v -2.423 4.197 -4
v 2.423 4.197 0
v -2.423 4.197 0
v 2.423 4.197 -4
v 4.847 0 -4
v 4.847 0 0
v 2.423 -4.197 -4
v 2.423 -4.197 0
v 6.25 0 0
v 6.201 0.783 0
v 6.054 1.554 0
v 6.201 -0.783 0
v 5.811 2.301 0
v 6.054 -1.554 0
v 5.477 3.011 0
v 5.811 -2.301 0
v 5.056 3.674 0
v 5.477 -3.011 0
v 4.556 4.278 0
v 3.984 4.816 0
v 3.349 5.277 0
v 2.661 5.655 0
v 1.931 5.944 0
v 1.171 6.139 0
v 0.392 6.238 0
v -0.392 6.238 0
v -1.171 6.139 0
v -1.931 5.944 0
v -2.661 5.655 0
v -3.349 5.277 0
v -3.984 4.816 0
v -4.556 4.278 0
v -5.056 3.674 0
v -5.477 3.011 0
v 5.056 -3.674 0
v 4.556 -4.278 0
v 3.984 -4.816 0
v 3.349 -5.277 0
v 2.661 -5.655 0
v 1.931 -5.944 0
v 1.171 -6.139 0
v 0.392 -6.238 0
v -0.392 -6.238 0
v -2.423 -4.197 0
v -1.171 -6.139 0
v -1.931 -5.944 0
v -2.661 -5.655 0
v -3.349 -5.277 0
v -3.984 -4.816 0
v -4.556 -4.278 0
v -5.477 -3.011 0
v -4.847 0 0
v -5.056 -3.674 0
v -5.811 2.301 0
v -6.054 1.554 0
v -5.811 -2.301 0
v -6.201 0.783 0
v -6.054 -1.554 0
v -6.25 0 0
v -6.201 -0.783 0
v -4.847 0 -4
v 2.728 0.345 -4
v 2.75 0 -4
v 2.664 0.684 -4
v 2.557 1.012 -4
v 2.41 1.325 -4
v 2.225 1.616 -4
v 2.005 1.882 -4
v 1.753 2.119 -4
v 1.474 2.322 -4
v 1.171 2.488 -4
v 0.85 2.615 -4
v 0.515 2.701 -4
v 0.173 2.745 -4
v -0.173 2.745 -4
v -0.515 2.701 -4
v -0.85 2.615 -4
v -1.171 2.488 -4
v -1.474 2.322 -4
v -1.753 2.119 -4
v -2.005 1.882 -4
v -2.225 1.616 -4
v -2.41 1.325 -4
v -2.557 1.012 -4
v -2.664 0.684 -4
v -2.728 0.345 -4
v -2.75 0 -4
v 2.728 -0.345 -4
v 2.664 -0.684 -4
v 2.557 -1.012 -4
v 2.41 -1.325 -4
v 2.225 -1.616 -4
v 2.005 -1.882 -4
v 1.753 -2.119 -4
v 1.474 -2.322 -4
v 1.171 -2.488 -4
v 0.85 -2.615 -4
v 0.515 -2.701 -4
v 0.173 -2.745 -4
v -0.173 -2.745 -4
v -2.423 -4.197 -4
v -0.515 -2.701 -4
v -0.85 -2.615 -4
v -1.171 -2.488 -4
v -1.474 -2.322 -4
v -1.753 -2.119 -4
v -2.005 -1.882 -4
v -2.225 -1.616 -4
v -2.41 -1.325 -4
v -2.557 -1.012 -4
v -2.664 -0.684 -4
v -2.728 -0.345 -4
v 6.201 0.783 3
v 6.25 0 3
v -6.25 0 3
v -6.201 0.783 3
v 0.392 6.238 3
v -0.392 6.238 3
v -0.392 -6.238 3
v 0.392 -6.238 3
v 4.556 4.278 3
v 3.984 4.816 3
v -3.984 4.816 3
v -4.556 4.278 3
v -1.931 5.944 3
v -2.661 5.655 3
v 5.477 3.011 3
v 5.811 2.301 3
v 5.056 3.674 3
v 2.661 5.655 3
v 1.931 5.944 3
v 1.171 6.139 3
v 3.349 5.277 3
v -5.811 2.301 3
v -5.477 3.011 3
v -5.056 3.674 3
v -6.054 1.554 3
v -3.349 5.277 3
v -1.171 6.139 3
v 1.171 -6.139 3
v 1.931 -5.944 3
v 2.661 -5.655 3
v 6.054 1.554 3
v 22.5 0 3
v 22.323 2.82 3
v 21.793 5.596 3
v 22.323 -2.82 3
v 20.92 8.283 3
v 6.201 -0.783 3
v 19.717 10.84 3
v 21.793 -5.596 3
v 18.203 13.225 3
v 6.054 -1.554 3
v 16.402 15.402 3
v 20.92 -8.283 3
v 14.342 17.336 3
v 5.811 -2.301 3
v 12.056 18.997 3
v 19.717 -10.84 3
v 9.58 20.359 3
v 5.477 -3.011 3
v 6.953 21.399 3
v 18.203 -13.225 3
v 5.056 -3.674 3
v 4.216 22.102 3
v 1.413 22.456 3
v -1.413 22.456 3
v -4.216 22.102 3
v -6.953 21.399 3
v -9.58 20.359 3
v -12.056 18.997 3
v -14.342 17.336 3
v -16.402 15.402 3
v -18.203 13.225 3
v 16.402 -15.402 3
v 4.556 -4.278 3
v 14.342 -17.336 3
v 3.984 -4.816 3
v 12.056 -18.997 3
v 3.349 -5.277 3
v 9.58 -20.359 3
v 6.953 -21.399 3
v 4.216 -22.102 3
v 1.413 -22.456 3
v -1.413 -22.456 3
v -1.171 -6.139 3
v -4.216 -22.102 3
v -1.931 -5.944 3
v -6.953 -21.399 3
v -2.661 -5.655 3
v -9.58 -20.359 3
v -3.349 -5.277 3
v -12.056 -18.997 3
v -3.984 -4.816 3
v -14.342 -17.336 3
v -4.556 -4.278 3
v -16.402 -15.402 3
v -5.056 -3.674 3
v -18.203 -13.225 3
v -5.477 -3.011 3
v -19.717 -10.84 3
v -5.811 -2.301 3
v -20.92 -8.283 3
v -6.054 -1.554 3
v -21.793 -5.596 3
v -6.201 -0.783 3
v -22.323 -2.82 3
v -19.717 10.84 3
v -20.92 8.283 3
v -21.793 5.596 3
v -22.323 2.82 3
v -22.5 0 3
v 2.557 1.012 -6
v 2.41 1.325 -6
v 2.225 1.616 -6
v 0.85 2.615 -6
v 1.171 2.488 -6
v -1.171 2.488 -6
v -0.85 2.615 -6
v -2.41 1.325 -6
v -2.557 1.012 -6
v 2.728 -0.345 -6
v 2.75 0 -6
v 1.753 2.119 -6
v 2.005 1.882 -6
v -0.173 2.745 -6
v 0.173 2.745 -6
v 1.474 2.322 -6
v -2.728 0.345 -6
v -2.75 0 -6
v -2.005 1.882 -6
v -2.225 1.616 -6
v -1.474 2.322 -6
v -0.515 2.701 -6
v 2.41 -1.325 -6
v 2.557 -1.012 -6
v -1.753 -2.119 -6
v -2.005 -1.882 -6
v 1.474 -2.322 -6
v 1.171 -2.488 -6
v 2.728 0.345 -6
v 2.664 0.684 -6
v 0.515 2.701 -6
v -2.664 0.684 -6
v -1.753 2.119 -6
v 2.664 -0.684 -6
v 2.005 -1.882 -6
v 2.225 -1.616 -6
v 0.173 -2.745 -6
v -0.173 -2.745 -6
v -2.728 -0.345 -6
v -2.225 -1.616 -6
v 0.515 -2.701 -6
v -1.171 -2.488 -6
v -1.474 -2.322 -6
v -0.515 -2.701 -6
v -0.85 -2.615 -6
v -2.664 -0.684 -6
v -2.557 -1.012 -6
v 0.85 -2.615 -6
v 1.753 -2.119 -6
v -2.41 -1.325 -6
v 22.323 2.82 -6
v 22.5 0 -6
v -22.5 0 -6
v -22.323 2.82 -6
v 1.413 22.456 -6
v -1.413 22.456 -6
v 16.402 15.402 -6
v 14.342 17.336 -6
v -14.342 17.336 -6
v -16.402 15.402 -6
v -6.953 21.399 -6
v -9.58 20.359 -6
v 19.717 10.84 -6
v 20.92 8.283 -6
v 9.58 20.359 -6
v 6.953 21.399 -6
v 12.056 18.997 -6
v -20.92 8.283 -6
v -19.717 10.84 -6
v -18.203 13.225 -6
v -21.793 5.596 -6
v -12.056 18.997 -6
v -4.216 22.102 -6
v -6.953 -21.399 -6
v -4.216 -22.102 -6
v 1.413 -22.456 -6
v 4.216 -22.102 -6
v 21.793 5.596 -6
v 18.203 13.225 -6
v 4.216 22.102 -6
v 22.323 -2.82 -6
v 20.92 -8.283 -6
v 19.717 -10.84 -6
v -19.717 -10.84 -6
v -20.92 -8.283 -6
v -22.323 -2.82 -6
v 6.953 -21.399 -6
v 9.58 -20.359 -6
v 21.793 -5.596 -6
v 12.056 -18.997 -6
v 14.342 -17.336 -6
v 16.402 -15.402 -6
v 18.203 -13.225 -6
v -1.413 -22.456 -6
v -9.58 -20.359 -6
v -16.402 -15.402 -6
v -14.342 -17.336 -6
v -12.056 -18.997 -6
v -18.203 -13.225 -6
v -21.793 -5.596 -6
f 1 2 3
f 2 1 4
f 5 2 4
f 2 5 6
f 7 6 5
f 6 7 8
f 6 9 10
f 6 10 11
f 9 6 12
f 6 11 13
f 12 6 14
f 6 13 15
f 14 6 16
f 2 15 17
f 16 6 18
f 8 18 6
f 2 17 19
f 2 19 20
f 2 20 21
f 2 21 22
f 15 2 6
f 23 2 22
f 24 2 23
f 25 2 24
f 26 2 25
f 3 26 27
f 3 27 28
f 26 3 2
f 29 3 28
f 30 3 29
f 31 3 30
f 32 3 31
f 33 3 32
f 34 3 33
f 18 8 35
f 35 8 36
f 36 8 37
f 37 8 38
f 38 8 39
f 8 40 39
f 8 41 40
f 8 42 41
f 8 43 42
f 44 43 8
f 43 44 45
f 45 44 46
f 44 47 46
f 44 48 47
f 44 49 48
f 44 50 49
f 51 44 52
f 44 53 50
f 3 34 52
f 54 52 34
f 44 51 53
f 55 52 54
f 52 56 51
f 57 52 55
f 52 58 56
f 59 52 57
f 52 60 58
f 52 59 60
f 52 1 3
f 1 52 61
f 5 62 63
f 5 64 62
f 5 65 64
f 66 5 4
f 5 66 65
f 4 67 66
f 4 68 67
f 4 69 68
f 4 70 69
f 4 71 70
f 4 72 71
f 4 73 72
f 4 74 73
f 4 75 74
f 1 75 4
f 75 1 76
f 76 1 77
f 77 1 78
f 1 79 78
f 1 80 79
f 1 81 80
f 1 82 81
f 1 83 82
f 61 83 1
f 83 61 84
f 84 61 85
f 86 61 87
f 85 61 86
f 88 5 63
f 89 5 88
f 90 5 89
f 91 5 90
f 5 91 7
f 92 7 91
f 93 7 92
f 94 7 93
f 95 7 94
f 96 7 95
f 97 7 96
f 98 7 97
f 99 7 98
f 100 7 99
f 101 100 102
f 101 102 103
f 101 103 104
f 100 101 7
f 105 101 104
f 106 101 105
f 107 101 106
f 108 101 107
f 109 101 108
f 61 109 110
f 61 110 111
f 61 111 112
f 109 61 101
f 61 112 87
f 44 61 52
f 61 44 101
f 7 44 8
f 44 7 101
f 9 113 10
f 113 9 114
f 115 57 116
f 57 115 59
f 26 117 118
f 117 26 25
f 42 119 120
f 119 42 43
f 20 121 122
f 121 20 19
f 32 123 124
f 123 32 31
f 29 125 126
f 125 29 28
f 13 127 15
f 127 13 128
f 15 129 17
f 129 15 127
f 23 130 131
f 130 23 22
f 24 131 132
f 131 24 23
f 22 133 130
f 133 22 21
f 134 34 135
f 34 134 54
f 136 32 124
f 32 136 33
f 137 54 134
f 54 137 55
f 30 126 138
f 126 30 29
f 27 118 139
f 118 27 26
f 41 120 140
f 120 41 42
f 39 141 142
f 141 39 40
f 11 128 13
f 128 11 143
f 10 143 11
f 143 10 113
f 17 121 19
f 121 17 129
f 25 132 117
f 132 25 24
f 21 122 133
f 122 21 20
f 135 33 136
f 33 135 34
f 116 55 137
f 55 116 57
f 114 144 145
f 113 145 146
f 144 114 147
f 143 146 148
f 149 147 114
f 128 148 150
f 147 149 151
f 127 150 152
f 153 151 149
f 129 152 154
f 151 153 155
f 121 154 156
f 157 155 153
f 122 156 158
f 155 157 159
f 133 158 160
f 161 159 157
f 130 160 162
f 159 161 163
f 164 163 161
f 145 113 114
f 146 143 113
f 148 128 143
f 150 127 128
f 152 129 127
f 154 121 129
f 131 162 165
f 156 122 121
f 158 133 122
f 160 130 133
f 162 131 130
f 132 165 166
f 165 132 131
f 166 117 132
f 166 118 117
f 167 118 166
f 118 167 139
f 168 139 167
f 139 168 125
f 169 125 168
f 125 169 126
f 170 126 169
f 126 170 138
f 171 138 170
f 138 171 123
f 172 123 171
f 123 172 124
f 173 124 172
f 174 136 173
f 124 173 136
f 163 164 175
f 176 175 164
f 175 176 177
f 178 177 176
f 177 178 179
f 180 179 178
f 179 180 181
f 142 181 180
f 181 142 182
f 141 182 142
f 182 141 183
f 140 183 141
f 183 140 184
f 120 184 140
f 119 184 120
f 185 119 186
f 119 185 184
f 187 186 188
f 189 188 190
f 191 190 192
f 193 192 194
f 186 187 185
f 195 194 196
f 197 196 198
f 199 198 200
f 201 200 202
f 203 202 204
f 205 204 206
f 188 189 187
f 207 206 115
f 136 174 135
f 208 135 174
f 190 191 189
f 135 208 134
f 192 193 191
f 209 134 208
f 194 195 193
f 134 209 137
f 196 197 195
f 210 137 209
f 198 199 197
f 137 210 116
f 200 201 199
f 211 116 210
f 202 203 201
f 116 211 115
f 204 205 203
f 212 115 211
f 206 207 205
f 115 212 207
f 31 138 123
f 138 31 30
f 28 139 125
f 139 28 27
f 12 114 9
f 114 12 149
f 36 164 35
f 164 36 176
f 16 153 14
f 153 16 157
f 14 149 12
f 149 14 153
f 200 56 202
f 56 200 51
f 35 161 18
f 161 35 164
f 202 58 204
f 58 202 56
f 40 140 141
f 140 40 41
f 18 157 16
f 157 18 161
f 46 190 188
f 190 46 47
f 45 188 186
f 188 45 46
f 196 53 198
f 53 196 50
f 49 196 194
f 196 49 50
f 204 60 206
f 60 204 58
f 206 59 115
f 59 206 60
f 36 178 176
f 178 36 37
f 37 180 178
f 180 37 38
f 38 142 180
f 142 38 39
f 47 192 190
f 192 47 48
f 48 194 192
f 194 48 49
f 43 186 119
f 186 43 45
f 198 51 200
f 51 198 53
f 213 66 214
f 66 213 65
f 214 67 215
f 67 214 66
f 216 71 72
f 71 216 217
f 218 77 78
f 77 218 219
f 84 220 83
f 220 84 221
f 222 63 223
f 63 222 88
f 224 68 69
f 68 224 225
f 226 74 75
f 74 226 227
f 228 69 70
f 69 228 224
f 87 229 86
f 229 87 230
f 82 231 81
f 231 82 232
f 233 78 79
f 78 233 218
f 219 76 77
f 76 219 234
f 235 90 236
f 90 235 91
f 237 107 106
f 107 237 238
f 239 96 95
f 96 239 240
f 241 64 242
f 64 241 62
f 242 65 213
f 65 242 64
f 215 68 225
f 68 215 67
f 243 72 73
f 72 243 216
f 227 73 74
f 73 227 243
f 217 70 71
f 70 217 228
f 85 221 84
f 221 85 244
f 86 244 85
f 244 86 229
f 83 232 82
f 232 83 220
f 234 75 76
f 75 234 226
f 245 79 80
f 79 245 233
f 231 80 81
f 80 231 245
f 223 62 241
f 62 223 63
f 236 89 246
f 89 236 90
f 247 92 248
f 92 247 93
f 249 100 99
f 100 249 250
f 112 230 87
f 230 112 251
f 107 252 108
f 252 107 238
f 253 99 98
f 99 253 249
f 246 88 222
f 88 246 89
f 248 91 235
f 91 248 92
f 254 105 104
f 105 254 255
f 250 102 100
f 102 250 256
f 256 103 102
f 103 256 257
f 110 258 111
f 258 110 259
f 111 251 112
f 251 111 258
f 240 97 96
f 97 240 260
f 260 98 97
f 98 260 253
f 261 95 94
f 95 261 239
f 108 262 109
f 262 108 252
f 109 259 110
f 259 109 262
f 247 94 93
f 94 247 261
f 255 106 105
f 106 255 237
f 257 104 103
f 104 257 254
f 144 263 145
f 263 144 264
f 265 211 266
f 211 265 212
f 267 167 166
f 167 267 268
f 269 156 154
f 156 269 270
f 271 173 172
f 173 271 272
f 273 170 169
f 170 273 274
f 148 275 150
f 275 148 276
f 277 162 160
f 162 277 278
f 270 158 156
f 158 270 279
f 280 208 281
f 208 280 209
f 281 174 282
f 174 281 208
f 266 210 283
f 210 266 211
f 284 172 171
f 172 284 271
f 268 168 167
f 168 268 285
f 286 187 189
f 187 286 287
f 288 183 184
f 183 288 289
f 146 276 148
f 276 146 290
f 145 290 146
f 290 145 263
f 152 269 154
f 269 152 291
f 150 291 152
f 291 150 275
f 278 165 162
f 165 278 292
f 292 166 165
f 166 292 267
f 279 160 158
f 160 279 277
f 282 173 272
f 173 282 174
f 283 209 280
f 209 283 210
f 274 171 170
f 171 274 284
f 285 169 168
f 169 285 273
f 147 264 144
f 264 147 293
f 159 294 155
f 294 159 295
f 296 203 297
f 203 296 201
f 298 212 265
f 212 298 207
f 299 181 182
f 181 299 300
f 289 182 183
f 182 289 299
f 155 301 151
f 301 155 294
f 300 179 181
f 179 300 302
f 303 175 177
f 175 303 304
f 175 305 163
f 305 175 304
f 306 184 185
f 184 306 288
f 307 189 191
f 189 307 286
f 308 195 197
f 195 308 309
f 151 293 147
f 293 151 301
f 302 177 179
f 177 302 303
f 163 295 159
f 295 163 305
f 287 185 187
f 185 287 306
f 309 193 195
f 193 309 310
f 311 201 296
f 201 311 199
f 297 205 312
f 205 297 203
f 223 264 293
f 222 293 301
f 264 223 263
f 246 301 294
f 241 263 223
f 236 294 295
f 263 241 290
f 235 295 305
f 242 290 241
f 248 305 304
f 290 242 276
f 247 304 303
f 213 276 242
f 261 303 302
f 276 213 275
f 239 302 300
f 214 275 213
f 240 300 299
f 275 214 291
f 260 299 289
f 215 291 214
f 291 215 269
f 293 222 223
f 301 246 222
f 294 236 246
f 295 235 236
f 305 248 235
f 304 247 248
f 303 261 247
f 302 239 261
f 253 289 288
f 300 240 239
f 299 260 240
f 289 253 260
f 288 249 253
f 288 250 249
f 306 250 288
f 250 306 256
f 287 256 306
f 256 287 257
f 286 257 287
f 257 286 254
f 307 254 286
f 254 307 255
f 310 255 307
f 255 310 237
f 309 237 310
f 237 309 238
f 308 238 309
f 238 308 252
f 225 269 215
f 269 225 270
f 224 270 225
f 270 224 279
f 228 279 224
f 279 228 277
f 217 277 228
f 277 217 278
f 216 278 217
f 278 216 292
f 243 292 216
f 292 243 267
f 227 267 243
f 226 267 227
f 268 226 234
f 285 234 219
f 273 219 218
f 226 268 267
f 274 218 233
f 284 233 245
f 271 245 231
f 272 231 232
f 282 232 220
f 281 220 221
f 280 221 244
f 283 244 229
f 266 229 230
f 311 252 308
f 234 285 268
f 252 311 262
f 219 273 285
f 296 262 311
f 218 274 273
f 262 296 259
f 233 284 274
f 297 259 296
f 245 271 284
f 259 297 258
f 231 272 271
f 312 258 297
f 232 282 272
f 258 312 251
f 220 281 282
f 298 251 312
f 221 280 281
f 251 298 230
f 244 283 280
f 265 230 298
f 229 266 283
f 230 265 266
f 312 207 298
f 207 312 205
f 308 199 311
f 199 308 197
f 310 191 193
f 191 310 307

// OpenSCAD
$fn = 50;


difference() {
	union() {
		translate(v = [0, 0, -6.0000000000]) {
			cylinder(h = 9.0000000000, r = 22.5000000000);
		}
	}
	union() {
		translate(v = [0, 0, 0]) {
			rotate(a = [0, 0, 0]) {
				difference() {
					union() {
						translate(v = [0, 0, -4]) {
							linear_extrude(height = 4) {
								polygon(points = [[4.8468000000, 0.0000000000], [2.4234000000, 4.1974519271], [-2.4234000000, 4.1974519271], [-4.8468000000, 0.0000000000], [-2.4234000000, -4.1974519271], [2.4234000000, -4.1974519271]]);
							}
						}
					}
					union();
				}
			}
		}
		#cylinder(h = 3, r = 6.2500000000);
		#translate(v = [0, 0, -100.0000000000]) {
			cylinder(h = 200, r = 2.7500000000);
		}
	}
}
